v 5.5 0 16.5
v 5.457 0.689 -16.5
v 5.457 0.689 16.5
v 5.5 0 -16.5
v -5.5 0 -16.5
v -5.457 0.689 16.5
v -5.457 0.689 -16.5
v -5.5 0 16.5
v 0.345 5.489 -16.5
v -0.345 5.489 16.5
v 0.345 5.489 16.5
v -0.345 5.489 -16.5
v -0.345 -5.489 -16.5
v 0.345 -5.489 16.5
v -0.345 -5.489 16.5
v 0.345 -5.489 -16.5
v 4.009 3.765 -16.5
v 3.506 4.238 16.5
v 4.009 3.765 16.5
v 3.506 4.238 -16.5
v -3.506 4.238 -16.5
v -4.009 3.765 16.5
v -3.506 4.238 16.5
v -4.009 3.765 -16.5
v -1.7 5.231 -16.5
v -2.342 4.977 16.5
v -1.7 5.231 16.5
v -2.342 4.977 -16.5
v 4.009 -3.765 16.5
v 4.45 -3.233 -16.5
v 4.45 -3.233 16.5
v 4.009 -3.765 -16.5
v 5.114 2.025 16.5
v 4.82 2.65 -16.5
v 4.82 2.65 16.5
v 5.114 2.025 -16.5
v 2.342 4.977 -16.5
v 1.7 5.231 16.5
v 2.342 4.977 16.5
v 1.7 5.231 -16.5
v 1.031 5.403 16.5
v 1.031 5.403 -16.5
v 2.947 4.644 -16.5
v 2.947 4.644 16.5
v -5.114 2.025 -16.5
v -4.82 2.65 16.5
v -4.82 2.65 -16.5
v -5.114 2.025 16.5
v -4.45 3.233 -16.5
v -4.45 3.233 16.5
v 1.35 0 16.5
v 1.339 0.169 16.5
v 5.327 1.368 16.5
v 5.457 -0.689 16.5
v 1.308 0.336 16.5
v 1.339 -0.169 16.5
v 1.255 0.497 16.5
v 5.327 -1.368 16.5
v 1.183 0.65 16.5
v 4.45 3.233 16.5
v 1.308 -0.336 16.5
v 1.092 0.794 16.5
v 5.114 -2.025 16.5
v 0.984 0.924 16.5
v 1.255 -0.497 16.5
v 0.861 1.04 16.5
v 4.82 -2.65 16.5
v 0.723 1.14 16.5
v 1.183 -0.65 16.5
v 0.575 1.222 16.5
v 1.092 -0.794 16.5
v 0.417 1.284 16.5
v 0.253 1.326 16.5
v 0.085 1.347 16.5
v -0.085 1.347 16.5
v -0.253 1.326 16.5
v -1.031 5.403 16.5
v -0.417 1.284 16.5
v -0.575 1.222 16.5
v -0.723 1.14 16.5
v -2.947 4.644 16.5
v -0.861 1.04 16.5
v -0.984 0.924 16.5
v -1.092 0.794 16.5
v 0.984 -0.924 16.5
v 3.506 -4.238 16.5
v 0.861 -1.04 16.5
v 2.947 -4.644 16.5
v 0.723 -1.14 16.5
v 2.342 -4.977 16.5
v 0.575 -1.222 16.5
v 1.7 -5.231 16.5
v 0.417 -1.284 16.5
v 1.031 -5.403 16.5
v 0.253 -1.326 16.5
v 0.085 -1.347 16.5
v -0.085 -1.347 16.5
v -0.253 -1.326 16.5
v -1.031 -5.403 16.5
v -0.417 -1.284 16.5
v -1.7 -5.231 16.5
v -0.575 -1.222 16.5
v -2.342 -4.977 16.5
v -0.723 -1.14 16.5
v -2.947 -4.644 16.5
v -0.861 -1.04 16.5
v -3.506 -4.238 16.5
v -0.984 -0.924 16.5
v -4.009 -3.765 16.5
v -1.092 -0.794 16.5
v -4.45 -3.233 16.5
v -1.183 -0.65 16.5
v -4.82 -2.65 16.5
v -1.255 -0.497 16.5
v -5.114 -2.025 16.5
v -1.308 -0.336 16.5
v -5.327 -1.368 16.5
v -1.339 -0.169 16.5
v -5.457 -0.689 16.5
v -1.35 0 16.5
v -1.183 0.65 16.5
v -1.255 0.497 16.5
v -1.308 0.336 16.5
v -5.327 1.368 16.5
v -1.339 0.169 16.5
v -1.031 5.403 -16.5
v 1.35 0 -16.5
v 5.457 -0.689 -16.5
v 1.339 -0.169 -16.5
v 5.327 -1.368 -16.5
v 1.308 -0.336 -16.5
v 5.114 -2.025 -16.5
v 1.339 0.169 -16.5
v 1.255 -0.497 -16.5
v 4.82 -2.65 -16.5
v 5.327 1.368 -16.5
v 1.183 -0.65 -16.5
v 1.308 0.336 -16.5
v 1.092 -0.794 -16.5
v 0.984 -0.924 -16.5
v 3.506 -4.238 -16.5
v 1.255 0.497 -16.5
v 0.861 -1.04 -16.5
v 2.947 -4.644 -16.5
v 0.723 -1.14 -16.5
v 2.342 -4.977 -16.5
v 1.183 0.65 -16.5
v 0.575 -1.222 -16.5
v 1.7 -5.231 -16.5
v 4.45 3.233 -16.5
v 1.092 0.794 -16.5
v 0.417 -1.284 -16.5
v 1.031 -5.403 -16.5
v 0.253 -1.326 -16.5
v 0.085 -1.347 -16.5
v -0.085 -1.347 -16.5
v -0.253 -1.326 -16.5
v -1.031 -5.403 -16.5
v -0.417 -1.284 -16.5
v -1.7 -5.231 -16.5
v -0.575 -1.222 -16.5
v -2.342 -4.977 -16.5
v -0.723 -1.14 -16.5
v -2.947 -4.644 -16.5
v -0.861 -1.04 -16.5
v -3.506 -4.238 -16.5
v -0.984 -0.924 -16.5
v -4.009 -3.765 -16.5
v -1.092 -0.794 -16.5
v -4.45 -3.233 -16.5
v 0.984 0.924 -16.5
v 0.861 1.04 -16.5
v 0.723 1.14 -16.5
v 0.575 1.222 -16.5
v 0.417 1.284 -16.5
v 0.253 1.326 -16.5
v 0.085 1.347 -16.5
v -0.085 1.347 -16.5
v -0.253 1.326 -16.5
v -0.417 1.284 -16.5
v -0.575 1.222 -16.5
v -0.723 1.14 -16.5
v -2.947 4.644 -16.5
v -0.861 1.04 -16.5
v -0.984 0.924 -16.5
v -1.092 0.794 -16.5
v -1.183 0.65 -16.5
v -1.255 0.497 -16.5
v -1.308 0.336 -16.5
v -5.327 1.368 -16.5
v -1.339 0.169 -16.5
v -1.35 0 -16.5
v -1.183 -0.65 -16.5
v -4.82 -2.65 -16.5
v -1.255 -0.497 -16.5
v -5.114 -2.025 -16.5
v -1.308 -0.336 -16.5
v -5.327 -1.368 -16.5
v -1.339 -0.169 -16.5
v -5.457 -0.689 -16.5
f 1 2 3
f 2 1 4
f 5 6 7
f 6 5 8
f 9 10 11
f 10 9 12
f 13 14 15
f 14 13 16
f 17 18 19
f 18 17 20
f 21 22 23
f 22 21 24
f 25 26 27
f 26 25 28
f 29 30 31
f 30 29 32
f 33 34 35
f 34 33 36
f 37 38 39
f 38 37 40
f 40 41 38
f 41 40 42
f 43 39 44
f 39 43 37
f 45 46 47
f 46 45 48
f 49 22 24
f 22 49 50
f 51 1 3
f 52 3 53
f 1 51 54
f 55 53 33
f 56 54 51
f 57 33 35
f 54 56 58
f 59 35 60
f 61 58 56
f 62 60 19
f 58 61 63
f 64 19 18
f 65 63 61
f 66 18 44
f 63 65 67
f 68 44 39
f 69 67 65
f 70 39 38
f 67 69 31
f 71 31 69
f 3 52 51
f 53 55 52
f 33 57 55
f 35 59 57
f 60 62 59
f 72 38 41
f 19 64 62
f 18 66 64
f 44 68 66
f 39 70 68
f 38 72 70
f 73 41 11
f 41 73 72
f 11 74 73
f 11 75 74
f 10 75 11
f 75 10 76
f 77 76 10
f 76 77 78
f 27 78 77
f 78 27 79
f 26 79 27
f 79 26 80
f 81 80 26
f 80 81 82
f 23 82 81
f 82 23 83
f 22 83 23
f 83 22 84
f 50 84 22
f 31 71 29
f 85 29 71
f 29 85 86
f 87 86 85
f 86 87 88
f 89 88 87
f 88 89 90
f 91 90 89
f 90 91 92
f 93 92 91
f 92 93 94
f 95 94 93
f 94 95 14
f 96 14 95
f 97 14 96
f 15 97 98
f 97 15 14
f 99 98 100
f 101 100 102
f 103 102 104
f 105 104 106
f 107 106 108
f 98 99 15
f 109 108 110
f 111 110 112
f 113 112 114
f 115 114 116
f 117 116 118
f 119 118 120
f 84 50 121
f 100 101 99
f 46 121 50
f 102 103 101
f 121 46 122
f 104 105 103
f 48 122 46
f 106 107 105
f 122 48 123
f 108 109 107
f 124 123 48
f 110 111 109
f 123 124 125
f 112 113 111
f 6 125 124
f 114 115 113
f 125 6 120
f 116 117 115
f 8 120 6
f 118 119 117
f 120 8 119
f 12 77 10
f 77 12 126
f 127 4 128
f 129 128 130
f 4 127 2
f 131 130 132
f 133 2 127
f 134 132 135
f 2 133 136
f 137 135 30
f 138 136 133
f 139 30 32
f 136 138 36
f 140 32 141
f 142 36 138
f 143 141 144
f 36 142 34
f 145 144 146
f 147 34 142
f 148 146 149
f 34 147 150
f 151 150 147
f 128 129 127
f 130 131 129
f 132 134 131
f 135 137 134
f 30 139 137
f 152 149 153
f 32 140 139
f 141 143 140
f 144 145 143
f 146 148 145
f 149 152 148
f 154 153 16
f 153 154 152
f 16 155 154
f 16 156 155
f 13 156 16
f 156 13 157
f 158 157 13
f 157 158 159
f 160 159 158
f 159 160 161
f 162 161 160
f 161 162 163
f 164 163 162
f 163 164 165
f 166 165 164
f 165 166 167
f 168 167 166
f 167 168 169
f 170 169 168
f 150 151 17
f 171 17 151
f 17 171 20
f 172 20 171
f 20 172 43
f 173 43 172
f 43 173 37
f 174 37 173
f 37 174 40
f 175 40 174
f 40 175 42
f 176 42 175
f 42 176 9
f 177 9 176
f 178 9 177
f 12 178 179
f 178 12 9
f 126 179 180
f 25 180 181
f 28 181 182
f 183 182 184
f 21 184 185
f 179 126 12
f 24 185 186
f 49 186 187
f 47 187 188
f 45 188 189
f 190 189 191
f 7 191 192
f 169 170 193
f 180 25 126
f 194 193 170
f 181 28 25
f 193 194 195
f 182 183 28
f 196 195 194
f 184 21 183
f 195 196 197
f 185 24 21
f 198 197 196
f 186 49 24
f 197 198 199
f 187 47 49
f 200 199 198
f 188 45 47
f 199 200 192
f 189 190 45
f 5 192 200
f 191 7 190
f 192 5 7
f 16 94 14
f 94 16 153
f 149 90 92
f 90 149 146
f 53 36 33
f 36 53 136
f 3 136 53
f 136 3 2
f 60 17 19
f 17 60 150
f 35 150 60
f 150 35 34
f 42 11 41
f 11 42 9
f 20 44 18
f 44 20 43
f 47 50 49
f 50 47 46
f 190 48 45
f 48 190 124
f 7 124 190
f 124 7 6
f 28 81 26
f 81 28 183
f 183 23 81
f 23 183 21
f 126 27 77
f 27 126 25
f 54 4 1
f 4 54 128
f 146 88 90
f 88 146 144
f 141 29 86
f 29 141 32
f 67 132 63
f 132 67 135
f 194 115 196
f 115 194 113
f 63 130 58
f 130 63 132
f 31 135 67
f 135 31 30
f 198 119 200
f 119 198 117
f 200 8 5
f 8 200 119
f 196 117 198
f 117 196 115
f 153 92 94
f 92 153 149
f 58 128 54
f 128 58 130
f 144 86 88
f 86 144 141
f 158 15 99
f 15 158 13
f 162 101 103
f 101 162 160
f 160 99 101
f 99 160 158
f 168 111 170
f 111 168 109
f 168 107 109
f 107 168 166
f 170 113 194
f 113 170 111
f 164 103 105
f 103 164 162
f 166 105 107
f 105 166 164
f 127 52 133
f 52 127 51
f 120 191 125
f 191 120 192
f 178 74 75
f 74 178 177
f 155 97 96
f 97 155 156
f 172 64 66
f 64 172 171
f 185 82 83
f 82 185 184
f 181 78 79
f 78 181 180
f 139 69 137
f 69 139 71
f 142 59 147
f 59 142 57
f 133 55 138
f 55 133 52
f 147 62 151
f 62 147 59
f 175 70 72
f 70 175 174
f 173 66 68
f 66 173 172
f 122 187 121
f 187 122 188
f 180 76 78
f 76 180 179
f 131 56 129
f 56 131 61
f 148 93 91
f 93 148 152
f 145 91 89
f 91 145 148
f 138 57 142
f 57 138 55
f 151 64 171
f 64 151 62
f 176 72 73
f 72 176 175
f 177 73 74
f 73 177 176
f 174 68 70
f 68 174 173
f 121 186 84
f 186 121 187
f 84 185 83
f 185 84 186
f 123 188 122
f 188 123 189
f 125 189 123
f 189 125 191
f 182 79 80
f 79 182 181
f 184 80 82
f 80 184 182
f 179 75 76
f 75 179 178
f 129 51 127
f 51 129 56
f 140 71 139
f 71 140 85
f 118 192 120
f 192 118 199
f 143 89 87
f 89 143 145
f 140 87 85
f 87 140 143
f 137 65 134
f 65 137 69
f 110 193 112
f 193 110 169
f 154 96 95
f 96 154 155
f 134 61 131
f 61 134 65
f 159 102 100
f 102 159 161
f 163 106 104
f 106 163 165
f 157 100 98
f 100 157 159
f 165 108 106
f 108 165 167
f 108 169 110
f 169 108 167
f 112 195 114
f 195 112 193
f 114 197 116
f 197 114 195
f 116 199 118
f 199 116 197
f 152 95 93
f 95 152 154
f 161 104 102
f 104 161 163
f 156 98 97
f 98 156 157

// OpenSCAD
$fn = 50;


difference() {
	union() {
		translate(v = [0, 0, -16.5000000000]) {
			cylinder(h = 33, r = 5.5000000000);
		}
	}
	union() {
		translate(v = [0, 0, -100.0000000000]) {
			cylinder(h = 200, r = 1.3500000000);
		}
	}
}
